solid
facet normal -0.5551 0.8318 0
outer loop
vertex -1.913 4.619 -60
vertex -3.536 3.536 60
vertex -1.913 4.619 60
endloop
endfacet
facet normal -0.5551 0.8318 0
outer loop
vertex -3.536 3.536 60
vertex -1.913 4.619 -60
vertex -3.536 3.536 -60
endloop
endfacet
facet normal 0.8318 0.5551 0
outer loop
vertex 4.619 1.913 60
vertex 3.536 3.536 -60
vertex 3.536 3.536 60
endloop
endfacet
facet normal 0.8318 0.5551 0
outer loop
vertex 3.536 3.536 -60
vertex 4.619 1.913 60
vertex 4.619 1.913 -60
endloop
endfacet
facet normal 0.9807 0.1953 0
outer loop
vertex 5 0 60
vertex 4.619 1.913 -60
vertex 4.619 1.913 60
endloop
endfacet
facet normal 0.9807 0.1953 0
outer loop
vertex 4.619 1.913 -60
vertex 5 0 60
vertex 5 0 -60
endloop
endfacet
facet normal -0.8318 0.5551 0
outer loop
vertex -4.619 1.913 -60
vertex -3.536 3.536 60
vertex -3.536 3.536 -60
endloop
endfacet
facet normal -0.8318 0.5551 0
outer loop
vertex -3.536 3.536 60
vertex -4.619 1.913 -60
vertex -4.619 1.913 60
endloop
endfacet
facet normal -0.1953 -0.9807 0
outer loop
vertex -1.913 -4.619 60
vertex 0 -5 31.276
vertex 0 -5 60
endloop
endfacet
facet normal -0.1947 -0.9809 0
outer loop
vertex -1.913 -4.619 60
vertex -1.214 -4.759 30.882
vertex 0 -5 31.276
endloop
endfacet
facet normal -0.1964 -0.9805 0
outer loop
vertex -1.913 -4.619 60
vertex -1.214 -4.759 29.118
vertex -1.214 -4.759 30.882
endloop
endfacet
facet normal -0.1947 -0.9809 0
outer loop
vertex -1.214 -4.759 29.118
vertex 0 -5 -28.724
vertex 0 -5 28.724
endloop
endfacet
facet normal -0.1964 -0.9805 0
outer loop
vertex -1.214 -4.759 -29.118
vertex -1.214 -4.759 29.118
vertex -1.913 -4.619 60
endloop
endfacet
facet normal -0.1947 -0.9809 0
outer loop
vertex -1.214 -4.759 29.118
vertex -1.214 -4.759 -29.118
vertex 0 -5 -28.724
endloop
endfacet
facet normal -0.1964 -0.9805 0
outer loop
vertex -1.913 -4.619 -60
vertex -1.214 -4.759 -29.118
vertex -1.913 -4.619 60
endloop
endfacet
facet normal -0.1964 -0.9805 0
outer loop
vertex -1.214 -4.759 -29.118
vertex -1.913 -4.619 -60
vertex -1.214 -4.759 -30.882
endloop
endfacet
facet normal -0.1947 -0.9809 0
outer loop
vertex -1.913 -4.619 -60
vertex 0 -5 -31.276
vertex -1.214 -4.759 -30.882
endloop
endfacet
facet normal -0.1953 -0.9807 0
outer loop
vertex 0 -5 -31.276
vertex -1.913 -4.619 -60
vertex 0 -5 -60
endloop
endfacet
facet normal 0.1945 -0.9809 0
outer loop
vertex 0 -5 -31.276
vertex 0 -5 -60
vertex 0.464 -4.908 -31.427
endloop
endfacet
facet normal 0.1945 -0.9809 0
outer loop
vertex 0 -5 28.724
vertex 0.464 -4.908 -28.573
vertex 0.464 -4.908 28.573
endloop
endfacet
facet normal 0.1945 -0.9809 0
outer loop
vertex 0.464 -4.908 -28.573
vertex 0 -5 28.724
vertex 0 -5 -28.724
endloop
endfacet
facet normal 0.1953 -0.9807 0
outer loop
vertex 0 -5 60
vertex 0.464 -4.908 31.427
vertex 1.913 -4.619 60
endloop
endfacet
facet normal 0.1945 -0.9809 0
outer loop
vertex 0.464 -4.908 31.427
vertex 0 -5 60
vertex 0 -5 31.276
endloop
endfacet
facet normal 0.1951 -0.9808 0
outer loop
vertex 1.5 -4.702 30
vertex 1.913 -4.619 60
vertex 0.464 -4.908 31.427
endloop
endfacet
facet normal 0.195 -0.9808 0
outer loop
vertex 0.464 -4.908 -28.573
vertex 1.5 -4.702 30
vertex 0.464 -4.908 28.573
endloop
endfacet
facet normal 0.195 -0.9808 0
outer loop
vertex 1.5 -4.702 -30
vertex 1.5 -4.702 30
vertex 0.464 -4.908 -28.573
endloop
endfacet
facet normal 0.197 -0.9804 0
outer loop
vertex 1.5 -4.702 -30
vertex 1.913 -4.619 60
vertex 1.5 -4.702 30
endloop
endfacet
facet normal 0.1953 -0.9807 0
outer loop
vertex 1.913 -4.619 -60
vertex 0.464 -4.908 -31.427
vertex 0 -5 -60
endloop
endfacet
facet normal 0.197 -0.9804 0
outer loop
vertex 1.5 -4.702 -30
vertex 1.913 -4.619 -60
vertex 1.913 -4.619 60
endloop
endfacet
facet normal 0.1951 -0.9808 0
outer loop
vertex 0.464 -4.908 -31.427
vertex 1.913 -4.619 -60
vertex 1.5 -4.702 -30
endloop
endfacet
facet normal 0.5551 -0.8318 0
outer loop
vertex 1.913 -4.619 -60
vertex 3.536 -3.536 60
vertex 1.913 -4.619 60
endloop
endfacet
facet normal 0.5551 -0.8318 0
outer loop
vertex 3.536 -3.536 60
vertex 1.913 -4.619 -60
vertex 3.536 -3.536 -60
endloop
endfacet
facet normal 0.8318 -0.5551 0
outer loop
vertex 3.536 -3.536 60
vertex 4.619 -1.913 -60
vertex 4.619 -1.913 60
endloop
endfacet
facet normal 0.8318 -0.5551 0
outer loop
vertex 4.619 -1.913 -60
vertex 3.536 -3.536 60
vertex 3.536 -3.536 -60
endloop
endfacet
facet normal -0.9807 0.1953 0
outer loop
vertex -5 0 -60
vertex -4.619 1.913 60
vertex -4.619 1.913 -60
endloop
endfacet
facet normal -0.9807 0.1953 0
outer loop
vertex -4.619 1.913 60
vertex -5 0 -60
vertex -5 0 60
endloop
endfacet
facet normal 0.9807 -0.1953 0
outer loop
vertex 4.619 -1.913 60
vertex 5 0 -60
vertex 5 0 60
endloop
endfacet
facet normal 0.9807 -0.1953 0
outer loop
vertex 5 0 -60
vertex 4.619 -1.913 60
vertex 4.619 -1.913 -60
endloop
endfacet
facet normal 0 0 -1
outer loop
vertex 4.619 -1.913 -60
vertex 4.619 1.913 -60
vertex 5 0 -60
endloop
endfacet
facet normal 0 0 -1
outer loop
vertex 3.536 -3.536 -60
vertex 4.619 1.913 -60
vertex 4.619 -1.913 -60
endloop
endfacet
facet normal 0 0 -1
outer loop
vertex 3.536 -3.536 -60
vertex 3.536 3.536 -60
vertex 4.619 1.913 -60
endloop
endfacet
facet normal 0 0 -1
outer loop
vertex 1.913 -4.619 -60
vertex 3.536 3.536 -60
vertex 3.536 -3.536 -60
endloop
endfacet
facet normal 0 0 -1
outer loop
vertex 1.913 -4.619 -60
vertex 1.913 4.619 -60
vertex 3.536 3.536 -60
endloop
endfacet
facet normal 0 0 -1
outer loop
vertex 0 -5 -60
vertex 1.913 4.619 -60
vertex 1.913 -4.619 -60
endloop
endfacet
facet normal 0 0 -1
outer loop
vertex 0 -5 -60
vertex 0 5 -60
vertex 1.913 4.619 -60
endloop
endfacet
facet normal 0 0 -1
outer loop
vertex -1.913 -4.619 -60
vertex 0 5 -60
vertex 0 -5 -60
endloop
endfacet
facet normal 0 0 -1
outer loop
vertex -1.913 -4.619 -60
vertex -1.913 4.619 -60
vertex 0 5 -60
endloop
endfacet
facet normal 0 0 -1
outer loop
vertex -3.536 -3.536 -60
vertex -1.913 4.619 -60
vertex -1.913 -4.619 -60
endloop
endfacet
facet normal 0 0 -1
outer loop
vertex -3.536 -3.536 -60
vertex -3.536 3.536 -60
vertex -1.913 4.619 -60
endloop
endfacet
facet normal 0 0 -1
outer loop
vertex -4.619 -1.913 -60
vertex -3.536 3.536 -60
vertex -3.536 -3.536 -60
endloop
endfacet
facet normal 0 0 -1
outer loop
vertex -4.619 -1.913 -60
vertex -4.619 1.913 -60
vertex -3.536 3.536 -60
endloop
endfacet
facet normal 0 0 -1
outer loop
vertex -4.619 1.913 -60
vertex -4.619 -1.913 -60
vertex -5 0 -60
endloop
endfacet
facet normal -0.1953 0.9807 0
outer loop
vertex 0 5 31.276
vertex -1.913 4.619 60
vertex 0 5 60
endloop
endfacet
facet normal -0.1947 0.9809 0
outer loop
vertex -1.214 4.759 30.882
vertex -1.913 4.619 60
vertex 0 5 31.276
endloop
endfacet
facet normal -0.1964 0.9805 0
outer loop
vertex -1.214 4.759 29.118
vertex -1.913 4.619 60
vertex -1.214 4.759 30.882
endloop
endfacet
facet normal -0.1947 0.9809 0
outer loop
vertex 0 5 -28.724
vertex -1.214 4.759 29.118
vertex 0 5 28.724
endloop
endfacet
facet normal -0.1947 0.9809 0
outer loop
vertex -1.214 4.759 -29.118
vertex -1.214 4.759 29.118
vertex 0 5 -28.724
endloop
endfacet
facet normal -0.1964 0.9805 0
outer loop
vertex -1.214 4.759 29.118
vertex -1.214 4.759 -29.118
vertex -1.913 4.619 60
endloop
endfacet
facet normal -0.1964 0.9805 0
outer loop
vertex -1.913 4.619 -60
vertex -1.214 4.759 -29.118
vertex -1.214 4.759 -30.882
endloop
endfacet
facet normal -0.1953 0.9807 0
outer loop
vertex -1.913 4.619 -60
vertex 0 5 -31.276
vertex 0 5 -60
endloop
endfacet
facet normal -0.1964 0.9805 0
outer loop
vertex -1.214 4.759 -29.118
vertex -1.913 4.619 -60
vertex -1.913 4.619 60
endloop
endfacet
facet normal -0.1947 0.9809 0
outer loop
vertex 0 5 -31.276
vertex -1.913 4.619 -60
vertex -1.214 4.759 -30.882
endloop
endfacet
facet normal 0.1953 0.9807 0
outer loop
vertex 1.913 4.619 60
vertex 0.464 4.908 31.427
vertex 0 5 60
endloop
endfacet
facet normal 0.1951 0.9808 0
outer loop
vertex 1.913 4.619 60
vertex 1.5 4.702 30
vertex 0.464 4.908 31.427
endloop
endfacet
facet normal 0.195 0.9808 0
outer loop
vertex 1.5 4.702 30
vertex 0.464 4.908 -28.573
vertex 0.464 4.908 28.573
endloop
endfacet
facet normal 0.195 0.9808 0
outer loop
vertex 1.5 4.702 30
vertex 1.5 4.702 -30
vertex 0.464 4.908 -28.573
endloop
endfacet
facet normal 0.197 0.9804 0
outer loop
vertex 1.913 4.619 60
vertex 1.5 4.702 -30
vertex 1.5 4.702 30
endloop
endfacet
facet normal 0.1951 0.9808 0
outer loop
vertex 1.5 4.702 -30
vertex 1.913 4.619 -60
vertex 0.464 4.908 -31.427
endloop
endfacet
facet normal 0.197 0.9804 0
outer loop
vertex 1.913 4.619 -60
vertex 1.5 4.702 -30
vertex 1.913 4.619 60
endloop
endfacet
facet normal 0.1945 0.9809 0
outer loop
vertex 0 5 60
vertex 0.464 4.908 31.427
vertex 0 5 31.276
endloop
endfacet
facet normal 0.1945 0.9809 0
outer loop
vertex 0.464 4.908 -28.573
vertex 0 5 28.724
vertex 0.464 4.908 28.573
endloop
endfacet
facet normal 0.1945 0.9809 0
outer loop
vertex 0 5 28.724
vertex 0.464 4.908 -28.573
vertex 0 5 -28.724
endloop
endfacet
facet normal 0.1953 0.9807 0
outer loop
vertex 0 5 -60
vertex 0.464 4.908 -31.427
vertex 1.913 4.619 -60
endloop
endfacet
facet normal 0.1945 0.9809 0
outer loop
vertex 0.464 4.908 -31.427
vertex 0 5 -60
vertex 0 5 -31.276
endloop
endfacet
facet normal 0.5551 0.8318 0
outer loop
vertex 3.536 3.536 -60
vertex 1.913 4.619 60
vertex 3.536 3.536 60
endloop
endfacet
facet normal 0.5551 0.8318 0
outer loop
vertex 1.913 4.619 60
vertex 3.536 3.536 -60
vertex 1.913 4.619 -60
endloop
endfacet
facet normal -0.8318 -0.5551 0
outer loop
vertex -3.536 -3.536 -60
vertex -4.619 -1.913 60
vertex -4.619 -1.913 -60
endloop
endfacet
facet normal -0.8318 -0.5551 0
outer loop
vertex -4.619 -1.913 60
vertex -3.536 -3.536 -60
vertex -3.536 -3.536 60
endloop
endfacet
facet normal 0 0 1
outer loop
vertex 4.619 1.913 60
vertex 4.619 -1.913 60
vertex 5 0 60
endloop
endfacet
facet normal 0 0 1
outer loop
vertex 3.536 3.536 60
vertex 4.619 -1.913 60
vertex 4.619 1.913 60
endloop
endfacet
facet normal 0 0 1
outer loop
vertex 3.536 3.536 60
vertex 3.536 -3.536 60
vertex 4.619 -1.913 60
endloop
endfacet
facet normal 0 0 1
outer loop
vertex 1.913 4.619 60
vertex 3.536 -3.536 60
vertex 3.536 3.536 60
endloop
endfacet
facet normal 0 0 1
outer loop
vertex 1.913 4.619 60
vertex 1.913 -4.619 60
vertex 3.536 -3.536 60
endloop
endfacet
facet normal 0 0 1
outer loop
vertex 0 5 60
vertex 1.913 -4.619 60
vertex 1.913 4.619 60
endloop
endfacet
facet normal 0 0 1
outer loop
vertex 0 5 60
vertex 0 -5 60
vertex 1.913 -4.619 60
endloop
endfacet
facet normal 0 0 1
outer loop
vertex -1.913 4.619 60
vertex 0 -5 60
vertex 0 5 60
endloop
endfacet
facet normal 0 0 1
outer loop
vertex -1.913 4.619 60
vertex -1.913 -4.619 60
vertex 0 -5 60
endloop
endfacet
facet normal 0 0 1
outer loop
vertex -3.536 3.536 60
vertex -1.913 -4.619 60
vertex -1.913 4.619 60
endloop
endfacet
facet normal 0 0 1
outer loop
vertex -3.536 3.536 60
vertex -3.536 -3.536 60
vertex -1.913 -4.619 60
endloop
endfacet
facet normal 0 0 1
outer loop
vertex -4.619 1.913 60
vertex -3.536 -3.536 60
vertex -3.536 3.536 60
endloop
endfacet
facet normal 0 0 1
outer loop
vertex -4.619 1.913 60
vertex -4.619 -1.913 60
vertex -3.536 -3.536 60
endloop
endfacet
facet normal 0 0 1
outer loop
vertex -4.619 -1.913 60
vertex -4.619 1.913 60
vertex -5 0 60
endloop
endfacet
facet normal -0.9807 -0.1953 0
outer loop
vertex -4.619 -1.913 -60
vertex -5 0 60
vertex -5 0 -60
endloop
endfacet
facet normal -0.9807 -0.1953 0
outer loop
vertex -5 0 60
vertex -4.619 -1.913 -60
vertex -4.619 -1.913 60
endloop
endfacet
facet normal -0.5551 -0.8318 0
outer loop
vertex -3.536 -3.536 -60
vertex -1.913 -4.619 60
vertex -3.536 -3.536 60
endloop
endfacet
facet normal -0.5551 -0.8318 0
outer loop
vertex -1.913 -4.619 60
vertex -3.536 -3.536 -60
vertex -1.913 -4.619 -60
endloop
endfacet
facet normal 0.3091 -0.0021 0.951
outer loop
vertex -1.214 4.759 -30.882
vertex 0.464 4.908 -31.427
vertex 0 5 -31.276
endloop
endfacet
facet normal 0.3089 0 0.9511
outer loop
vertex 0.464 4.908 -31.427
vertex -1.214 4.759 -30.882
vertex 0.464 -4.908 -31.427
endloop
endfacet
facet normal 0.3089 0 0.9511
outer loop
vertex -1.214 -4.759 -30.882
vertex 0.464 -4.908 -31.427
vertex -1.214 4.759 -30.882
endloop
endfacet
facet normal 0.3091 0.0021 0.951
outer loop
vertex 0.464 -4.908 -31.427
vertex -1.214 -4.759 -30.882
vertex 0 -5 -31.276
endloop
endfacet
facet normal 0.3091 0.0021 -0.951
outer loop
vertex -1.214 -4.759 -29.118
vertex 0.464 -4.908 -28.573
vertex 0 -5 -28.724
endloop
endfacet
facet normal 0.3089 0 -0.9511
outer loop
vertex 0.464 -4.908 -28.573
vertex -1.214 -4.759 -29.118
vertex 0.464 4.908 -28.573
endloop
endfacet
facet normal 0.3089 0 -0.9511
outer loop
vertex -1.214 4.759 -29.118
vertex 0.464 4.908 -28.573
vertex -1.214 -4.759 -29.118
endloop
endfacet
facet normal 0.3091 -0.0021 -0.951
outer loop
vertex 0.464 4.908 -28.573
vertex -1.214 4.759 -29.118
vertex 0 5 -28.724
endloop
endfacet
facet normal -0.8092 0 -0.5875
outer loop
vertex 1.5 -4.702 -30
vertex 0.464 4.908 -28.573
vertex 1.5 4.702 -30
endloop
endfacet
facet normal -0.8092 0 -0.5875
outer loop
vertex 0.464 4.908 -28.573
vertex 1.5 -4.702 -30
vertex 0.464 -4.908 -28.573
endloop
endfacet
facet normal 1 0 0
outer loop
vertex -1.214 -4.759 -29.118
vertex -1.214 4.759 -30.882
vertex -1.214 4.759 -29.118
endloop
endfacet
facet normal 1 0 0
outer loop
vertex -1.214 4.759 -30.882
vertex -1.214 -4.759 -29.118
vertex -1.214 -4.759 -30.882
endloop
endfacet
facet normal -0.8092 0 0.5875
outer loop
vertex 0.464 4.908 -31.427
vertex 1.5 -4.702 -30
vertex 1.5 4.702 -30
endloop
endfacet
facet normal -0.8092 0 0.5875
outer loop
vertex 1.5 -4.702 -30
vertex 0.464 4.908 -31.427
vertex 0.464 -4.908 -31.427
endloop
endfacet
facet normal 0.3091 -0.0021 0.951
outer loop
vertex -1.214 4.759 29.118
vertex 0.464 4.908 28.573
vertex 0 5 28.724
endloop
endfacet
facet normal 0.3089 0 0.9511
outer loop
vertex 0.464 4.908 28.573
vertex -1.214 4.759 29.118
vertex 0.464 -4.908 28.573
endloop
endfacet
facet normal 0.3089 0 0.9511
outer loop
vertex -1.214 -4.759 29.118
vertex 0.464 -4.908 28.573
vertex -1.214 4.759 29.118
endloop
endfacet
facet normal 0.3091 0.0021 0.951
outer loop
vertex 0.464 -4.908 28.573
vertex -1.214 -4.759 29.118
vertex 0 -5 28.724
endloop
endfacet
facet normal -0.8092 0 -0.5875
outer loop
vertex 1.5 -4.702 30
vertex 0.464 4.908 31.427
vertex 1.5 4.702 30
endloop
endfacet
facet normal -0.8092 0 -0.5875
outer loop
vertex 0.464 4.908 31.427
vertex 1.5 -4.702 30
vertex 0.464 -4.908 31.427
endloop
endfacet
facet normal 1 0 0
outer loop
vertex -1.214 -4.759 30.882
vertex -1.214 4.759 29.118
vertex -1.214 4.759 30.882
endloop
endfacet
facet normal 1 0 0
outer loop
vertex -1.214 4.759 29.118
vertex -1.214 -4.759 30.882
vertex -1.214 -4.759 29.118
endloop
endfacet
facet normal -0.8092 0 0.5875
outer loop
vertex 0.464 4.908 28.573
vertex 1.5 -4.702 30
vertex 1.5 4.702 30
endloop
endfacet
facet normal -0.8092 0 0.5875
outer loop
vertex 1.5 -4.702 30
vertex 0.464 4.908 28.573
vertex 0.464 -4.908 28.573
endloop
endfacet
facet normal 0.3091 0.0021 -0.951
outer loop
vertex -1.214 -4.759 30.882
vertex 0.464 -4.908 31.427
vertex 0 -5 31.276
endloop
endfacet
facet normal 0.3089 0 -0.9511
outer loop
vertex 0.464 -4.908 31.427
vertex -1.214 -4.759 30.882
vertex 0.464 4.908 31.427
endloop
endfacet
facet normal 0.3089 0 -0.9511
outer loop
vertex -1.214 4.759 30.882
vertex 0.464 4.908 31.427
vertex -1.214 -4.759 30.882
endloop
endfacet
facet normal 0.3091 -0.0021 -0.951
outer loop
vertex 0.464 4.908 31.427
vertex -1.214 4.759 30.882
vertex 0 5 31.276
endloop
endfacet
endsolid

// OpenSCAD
// Parameters for the central shaft
shaft_length = 120; // Adjusted length of the shaft to match the original model
shaft_diameter = 10; // Diameter of the shaft remains unchanged
hole_diameter = 3; // Diameter of the holes remains unchanged
hole_spacing = 60; // Adjusted distance between the two holes (center-to-center) to match the original model

// Function to create the central shaft
module central_shaft() {
    // Create the main cylindrical shaft
    difference() {
        cylinder(h = shaft_length, d = shaft_diameter, center = true);
        
        // Create the first hole
        translate([0, 0, -hole_spacing / 2])
            rotate([90, 0, 0])
            cylinder(h = shaft_diameter + 2, d = hole_diameter, center = true);
        
        // Create the second hole
        translate([0, 0, hole_spacing / 2])
            rotate([90, 0, 0])
            cylinder(h = shaft_diameter + 2, d = hole_diameter, center = true);
    }
}

// Render the central shaft
central_shaft();
